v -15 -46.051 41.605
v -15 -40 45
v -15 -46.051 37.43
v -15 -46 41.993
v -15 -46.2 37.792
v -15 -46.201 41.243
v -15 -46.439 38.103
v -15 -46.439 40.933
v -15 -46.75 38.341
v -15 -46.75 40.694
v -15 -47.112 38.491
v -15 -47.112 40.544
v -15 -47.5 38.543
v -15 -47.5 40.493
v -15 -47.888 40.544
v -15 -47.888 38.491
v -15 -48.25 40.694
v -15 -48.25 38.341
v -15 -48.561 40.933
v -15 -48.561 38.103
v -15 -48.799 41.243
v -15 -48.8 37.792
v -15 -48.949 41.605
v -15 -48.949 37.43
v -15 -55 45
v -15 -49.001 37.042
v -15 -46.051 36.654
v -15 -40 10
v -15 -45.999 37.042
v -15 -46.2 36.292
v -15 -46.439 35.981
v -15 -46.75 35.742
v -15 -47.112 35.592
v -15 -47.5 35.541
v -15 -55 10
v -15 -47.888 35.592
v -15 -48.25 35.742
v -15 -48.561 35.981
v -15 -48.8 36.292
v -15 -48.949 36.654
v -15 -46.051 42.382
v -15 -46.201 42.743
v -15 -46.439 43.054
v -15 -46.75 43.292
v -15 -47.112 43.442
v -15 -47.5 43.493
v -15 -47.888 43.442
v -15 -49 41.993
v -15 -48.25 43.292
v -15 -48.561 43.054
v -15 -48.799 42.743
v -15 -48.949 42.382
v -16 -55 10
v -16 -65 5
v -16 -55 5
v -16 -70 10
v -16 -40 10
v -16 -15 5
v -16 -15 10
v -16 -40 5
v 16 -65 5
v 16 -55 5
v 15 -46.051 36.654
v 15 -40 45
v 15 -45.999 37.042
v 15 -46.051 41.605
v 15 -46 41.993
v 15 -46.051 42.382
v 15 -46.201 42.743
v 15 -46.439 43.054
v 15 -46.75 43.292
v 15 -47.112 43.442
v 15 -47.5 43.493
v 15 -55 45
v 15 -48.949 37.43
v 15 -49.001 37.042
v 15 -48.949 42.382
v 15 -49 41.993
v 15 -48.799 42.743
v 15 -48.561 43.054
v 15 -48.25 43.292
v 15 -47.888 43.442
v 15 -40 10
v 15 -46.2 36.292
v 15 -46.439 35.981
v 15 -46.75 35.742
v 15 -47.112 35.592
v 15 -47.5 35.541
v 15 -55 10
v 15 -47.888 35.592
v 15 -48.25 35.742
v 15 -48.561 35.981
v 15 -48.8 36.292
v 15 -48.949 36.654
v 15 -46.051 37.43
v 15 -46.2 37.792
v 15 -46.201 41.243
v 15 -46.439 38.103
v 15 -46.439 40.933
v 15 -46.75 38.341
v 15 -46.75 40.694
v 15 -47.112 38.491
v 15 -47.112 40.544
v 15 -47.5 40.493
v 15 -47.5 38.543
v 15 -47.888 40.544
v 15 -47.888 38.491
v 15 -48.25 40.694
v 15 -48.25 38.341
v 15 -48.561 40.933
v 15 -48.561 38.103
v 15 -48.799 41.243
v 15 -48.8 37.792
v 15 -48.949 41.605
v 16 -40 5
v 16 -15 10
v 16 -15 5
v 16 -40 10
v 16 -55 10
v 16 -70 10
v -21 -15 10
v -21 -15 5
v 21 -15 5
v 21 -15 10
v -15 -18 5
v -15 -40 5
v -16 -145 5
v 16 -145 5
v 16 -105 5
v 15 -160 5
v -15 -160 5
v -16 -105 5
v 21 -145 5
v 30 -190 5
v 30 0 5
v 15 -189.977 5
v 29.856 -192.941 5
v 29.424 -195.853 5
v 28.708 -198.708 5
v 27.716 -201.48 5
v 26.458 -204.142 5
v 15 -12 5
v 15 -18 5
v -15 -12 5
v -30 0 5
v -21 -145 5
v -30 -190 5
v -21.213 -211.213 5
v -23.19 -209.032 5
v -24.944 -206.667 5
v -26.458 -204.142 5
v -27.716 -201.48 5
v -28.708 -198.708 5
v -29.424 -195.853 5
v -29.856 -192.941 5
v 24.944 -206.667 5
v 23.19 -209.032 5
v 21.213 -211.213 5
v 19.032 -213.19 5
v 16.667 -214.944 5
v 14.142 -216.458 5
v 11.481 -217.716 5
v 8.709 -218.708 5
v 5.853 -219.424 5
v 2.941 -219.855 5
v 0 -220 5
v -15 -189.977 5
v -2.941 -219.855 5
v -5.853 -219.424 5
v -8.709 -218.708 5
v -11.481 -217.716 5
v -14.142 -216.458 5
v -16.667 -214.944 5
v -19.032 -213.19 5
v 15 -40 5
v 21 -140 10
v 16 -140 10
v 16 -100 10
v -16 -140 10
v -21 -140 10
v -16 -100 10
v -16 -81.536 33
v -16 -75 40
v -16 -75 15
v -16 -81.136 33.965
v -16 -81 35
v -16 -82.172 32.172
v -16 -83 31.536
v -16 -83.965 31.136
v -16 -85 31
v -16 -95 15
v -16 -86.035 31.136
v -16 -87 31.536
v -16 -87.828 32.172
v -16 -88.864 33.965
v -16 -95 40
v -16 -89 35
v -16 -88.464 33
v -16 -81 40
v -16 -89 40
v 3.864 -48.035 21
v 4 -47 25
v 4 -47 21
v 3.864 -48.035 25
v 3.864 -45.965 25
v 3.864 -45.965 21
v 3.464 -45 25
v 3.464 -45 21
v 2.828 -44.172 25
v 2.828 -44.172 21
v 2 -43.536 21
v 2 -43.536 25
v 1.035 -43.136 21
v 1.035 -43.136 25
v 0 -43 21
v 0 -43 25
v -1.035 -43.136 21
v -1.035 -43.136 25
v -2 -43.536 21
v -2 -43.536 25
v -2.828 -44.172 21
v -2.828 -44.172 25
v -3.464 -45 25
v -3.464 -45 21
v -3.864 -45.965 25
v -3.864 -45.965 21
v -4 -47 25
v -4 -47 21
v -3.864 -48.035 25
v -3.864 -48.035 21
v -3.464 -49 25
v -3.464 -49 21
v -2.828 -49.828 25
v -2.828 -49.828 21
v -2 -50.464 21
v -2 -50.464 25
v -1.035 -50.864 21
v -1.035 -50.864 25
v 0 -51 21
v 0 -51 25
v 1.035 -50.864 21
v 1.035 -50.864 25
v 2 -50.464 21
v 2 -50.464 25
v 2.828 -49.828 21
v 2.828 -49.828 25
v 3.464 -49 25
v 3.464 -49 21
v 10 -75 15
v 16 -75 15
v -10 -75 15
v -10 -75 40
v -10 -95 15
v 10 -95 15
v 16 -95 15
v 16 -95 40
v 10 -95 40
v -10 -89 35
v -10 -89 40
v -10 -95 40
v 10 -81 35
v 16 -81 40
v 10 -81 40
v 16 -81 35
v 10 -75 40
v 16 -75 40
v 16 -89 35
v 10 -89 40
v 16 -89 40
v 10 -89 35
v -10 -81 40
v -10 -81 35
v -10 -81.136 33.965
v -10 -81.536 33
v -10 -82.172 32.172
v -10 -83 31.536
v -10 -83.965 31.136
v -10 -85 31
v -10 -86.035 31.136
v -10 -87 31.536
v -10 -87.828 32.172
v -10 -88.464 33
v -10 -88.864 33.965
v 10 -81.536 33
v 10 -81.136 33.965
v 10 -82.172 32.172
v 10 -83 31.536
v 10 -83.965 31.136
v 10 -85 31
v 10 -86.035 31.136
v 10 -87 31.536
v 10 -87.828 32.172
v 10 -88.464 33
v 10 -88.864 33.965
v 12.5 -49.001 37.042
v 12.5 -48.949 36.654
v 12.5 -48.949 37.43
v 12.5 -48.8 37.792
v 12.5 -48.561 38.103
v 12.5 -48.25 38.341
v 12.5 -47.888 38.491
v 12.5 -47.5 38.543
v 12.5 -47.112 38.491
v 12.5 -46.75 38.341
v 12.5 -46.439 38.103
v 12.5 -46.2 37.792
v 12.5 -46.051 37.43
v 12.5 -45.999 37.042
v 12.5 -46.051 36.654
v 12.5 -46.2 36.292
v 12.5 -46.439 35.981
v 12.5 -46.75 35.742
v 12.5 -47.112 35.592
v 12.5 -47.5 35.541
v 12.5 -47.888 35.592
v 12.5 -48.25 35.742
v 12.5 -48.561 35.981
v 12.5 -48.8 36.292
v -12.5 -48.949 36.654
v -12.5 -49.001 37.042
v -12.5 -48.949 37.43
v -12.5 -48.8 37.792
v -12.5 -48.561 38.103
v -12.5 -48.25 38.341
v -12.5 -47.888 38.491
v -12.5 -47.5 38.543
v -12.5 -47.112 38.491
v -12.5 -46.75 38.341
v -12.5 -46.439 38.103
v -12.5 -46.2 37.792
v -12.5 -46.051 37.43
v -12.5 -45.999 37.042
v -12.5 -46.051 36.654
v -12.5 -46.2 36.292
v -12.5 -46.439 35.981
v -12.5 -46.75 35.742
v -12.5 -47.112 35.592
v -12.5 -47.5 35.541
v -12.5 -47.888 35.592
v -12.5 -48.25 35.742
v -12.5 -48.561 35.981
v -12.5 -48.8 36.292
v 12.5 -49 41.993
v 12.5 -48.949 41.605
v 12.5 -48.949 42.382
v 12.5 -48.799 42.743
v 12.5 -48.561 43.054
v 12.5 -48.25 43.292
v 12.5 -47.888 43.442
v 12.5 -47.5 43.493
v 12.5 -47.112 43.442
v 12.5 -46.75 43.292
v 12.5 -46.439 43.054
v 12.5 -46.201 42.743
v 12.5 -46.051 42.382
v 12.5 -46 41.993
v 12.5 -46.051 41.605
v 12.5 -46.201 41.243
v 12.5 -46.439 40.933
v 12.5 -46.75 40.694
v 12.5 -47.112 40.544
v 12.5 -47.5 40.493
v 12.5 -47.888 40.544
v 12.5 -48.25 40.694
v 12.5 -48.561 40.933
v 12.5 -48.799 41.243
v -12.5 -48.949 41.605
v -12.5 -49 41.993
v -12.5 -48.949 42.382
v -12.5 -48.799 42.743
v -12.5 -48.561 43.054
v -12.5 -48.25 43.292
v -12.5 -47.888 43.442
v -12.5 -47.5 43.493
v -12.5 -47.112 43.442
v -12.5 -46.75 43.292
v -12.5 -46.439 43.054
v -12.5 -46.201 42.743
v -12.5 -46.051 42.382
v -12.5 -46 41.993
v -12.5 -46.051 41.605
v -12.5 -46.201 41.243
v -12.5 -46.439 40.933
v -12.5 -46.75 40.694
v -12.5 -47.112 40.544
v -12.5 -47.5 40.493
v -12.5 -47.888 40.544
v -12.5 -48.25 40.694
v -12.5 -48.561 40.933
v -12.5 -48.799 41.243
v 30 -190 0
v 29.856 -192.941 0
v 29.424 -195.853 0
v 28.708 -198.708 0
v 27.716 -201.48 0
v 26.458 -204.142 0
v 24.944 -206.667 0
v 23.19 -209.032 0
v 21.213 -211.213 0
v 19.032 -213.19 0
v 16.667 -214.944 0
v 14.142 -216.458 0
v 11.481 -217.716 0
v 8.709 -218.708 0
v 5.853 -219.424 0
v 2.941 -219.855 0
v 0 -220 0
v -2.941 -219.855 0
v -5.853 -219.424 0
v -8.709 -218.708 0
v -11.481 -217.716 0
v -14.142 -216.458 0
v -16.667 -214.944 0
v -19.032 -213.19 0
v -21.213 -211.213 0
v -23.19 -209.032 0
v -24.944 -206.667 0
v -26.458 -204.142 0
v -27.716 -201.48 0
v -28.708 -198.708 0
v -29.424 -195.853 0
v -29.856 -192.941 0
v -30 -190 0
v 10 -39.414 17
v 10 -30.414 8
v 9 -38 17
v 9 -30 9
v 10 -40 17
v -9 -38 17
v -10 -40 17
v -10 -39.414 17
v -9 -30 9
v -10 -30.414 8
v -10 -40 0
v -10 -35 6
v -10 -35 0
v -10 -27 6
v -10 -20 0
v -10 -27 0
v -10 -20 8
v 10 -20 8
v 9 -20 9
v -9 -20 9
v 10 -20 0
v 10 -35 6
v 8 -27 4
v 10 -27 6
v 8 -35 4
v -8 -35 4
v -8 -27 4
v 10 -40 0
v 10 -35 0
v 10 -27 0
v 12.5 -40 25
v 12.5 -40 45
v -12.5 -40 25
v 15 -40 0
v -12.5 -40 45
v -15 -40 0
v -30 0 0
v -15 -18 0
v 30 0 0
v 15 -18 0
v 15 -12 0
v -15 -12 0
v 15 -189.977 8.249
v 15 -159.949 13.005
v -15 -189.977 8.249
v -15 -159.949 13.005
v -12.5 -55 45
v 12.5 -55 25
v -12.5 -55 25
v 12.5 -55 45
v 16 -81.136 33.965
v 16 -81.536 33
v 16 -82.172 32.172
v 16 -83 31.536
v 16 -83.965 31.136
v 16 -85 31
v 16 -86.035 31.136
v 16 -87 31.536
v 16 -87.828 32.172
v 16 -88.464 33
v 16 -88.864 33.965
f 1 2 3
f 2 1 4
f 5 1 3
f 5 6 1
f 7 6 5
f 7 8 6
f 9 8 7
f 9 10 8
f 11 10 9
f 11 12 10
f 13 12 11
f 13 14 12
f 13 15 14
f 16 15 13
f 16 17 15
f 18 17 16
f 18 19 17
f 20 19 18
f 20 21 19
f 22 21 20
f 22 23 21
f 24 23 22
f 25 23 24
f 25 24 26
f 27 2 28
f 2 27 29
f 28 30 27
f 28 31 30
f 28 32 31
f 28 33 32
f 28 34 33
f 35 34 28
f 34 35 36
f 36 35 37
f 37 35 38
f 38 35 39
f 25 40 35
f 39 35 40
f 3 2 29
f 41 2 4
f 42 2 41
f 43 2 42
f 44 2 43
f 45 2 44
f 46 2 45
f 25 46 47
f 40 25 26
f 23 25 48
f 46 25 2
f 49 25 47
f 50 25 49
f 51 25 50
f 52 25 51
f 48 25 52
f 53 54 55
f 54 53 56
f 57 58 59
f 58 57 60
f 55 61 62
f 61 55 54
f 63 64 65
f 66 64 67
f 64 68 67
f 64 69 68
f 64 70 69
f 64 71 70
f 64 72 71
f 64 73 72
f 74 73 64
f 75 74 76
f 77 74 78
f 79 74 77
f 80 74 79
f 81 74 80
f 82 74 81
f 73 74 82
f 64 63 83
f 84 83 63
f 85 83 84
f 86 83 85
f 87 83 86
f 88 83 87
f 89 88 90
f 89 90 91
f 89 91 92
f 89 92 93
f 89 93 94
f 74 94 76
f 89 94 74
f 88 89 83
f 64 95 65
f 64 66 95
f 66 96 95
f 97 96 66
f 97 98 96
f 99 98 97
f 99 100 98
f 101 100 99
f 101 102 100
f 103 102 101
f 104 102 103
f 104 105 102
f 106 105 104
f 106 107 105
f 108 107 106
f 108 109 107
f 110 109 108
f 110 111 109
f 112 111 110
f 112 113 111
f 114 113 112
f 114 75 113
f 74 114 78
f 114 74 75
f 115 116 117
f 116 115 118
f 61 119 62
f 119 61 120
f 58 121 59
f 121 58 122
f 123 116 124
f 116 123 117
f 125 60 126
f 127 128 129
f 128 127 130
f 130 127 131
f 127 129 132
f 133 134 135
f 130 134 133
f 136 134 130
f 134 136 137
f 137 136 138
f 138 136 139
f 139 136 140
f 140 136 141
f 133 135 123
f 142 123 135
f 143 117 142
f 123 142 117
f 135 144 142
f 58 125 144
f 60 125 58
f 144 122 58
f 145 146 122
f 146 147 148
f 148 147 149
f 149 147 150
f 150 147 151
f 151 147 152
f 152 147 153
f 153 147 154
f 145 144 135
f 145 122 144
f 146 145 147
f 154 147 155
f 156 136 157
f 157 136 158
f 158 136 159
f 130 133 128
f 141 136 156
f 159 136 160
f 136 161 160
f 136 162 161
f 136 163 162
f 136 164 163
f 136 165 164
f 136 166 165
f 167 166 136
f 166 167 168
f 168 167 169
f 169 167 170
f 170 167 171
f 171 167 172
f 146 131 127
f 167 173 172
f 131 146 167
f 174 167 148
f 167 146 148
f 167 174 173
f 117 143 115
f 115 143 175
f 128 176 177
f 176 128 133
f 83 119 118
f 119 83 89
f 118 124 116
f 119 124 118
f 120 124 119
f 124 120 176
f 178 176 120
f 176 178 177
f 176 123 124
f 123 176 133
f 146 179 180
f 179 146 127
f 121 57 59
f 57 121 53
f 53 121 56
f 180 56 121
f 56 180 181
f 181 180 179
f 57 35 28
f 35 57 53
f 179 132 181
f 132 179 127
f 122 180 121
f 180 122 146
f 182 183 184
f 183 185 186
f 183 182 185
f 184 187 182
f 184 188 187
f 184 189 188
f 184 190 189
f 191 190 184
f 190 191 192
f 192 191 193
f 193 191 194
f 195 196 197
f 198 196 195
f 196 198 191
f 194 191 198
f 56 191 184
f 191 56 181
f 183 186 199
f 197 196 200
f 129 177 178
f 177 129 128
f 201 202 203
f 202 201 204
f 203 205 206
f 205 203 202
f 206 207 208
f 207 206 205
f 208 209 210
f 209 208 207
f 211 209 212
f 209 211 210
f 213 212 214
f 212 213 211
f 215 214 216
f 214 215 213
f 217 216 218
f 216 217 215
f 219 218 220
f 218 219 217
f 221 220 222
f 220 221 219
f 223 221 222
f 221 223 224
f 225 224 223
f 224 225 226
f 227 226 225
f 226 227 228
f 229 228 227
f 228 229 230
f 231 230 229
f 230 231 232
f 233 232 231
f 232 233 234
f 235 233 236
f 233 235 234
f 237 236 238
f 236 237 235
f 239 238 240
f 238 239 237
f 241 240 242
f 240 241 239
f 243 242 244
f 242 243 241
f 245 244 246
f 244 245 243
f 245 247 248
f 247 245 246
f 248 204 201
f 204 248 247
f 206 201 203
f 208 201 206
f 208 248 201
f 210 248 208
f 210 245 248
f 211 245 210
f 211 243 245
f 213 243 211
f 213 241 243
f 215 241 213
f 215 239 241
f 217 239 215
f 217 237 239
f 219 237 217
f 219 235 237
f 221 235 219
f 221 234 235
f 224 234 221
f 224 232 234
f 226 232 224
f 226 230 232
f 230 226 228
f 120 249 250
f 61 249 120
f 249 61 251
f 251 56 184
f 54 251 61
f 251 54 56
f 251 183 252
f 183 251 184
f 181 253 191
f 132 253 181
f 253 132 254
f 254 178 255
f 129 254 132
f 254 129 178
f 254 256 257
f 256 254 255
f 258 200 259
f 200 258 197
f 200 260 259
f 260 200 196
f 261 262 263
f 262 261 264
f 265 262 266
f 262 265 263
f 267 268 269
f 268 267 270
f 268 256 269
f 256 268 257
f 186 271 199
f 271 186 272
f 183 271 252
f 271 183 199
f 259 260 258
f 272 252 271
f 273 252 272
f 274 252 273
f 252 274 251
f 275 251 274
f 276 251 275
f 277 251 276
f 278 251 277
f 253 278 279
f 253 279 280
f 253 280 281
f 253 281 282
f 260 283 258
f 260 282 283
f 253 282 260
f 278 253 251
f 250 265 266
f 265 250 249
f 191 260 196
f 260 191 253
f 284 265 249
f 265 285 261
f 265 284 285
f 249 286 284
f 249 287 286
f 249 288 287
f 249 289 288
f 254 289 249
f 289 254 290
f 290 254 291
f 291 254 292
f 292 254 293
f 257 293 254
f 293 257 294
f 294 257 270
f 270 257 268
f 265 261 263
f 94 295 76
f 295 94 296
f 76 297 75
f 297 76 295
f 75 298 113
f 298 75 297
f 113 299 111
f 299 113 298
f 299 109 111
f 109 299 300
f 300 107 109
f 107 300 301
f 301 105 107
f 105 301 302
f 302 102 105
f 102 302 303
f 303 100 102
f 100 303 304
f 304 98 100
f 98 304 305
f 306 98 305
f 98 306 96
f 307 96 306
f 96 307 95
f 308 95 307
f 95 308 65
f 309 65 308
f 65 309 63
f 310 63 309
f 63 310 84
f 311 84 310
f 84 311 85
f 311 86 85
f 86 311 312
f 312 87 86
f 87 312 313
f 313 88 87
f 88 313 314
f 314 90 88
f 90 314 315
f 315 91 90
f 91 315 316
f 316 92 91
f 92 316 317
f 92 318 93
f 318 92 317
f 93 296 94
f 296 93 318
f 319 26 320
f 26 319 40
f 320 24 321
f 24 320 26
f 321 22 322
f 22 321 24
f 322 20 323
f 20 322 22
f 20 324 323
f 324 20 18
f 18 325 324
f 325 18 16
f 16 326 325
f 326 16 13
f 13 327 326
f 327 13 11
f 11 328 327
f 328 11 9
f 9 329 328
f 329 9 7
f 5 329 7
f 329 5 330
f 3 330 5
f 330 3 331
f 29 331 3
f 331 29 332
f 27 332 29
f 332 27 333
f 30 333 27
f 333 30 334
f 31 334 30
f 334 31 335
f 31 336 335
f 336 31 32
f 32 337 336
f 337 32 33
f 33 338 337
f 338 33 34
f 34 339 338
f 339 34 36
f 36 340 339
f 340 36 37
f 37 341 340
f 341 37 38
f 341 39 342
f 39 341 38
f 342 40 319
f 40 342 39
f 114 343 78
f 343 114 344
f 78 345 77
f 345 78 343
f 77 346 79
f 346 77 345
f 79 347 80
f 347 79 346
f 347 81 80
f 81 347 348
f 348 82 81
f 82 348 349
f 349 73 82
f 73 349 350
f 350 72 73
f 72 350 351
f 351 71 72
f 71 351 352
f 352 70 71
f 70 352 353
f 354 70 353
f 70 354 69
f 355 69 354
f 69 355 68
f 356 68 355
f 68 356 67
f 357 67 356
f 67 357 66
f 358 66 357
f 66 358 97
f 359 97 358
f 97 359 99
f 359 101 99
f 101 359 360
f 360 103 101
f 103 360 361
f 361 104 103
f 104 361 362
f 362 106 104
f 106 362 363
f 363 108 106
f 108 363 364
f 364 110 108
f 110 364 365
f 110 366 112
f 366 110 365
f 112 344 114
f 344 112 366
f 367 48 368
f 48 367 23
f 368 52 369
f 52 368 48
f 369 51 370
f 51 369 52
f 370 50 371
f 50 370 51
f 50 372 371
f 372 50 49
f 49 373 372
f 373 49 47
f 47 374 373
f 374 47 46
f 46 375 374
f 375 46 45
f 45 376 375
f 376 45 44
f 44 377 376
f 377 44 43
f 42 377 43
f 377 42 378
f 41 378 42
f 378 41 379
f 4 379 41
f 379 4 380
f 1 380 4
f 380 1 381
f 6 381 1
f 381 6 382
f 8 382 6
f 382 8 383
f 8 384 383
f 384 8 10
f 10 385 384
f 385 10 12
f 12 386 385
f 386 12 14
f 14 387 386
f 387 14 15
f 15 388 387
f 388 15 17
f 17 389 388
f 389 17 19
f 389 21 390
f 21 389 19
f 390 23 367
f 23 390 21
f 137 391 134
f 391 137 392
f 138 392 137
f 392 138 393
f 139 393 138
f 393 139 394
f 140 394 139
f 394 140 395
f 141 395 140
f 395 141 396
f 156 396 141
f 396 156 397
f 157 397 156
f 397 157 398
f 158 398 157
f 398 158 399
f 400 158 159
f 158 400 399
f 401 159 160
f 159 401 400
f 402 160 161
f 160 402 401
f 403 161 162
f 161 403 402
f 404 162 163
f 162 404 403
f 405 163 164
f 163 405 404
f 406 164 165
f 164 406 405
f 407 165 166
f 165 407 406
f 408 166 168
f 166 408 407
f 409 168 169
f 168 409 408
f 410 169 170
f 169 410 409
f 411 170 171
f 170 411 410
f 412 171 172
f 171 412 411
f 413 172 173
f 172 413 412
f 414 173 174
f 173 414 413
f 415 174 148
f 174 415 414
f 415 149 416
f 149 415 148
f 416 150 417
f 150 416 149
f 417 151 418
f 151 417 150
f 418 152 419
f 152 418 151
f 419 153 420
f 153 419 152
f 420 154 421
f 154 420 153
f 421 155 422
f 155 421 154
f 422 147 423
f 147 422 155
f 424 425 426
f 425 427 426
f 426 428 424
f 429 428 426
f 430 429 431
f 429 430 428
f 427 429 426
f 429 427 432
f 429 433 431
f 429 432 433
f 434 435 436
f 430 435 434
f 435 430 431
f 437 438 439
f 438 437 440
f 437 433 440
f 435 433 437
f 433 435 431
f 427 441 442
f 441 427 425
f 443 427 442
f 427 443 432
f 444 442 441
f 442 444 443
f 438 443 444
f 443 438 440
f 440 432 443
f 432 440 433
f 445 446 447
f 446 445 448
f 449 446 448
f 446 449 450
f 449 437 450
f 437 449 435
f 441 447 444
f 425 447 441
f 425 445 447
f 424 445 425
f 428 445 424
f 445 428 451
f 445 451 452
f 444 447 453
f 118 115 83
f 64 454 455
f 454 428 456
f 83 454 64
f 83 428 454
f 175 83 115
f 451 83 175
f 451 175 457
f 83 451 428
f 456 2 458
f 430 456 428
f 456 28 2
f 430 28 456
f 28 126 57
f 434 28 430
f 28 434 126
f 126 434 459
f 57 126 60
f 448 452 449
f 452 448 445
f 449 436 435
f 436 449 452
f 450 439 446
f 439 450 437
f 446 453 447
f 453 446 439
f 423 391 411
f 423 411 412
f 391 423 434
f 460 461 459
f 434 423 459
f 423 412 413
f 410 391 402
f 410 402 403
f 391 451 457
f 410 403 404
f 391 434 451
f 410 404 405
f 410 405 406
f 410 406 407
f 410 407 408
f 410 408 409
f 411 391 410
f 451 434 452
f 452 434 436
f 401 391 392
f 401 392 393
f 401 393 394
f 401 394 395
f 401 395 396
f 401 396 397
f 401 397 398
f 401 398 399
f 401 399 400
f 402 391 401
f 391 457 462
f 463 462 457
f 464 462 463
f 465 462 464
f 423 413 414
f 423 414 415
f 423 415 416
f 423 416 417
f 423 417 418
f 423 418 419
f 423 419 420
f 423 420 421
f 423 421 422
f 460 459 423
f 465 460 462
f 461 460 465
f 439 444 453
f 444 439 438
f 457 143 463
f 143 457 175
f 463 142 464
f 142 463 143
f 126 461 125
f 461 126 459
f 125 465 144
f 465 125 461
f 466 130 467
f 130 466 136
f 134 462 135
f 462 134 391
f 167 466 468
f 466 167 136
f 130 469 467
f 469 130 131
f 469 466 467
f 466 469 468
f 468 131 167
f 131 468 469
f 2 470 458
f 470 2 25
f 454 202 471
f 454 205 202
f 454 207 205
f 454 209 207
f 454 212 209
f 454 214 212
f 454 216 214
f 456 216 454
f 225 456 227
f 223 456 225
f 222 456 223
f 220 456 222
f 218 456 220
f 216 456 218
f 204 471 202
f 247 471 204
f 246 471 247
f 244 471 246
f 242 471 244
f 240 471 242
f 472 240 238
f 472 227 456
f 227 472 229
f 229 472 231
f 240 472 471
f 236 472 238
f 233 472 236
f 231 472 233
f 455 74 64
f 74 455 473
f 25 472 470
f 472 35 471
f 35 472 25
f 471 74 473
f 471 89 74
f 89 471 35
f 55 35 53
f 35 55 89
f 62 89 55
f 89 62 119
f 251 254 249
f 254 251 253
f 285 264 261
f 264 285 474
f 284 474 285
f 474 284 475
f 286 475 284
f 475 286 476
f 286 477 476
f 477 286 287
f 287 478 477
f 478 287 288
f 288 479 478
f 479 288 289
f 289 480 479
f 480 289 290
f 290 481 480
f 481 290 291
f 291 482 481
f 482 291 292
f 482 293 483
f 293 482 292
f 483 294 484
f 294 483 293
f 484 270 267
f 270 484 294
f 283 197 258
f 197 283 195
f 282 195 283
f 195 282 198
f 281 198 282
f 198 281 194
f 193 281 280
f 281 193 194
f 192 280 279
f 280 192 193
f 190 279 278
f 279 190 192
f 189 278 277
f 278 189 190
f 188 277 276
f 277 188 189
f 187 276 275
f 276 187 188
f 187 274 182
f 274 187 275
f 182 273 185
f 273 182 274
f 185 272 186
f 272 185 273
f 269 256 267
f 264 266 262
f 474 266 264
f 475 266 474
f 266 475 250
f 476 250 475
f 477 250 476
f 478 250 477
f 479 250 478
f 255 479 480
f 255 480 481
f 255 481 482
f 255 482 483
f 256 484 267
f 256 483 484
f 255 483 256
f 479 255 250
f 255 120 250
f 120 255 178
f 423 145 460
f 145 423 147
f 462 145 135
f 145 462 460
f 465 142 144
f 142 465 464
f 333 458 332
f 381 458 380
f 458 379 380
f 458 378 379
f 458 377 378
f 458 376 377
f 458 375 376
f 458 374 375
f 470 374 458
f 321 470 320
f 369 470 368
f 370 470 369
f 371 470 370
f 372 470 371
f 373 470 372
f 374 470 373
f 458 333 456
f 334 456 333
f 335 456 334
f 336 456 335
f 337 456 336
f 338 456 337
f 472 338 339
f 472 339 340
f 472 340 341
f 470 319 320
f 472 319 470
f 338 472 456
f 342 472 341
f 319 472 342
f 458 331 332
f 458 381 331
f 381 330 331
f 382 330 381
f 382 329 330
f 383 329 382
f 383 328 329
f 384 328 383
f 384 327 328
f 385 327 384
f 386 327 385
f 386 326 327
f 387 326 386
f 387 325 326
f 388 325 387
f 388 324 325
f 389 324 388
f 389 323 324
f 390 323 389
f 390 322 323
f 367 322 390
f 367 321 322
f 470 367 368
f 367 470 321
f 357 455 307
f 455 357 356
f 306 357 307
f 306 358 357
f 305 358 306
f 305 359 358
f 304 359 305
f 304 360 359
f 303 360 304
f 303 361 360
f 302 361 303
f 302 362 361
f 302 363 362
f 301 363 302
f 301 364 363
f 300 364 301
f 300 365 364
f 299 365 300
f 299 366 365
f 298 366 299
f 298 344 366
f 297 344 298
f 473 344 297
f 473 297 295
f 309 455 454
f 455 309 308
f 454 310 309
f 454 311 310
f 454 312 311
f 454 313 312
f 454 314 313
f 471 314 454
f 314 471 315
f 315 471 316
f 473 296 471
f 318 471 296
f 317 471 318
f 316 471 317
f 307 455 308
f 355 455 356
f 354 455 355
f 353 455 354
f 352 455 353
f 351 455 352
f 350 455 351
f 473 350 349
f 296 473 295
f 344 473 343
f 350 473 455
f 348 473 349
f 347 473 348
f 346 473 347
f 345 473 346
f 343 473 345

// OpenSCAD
stlObject1_points=[
   [-15,10,40],
   [-15,35.54136,47.5],
   [-15,10,55],
   [-15,35.59249,47.11162],
   [-15,35.7424,46.74971],
   [-15,36.65356,48.94946],
   [-15,45,55],
   [-15,36.29165,48.79955],
   [-15,35.98087,48.56108],
   [-15,43.49341,47.5],
   [-15,45,40],
   [-15,43.4423,47.88823],
   [-15,43.29245,48.25001],
   [-15,36.65356,46.05054],
   [-15,37.04195,45.99941],
   [-15,41.99339,45.99998],
   [-15,37.43032,46.05054],
   [-15,41.60516,46.0511],
   [-15,37.79224,46.20045],
   [-15,41.24339,46.20095],
   [-15,38.10302,46.43893],
   [-15,40.93272,46.43933],
   [-15,38.34149,46.74971],
   [-15,40.69434,46.74999],
   [-15,40.54449,47.11177],
   [-15,38.4914,47.11162],
   [-15,40.49338,47.5],
   [-15,38.54253,47.5],
   [-15,38.4914,47.88838],
   [-15,41.99339,49.00002],
   [-15,37.43032,48.94946],
   [-15,41.60516,48.9489],
   [-15,37.04195,49.00059],
   [-15,37.79224,48.79955],
   [-15,41.24339,48.79905],
   [-15,38.10302,48.56108],
   [-15,40.93272,48.56067],
   [-15,38.34149,48.25029],
   [-15,40.69434,48.25001],
   [-15,40.54449,47.88823],
   [-15,42.38163,46.0511],
   [-15,42.7434,46.20095],
   [-15,43.05407,46.43933],
   [-15,43.29245,46.74999],
   [-15,43.4423,47.11177],
   [-15,43.05407,48.56067],
   [-15,42.7434,48.79905],
   [-15,42.38163,48.9489],
   [-15,35.7424,48.25029],
   [-15,35.59249,47.88838],
   [-15,35.98087,46.43893],
   [-15,36.29165,46.20045],
   [-16,5,65],
   [-16,10,55],
   [-16,5,55],
   [-16,10,70],
   [-16,10,15],
   [-16,5,40],
   [-16,10,40],
   [-16,5,15],
   [16,5,65],
   [16,5,55],
   [15,10,55],
   [15,35.54136,47.5],
   [15,10,40],
   [15,35.59249,47.88838],
   [15,35.7424,48.25029],
   [15,36.65356,46.05054],
   [15,45,40],
   [15,36.29165,46.20045],
   [15,35.98087,46.43893],
   [15,43.49341,47.5],
   [15,45,55],
   [15,43.4423,47.11177],
   [15,43.29245,46.74999],
   [15,36.65356,48.94946],
   [15,37.04195,49.00059],
   [15,41.99339,49.00002],
   [15,37.43032,48.94946],
   [15,41.60516,48.9489],
   [15,37.79224,48.79955],
   [15,41.24339,48.79905],
   [15,38.10302,48.56108],
   [15,40.93272,48.56067],
   [15,38.34149,48.25029],
   [15,40.69434,48.25001],
   [15,40.54449,47.88823],
   [15,38.4914,47.88838],
   [15,40.49338,47.5],
   [15,38.54253,47.5],
   [15,38.4914,47.11162],
   [15,42.38163,48.9489],
   [15,42.7434,48.79905],
   [15,43.05407,48.56067],
   [15,43.29245,48.25001],
   [15,43.4423,47.88823],
   [15,43.05407,46.43933],
   [15,42.7434,46.20095],
   [15,42.38163,46.0511],
   [15,41.99339,45.99998],
   [15,37.04195,45.99941],
   [15,37.43032,46.05054],
   [15,41.60516,46.0511],
   [15,37.79224,46.20045],
   [15,41.24339,46.20095],
   [15,38.10302,46.43893],
   [15,40.93272,46.43933],
   [15,38.34149,46.74971],
   [15,40.69434,46.74999],
   [15,40.54449,47.11177],
   [15,35.7424,46.74971],
   [15,35.59249,47.11162],
   [15,35.98087,48.56108],
   [15,36.29165,48.79955],
   [16,5,40],
   [16,10,15],
   [16,10,40],
   [16,5,15],
   [16,10,55],
   [16,10,70],
   [-21,10,15],
   [-21,5,15],
   [21,10,15],
   [21,5,15],
   [-15,5,15],
   [-15,5,40],
   [-30,5,0],
   [-21,5,145],
   [-30,5,190],
   [-15,5,160],
   [-26.45764,5,204.1419],
   [-15,5,189.9772],
   [-24.94409,5,206.6671],
   [-23.19031,5,209.0318],
   [30,5,0],
   [15,5,15],
   [15,5,40],
   [21,5,145],
   [30,5,160],
   [15,5,160],
   [16,5,145],
   [-16,5,145],
   [-16,5,105],
   [16,5,105],
   [-29.42356,5,195.8527],
   [-29.85554,5,192.9405],
   [-28.70821,5,198.7085],
   [-27.71639,5,201.4805],
   [-21.2132,5,211.2132],
   [-19.0318,5,213.1903],
   [-16.66711,5,214.9441],
   [-14.1419,5,216.4576],
   [-11.4805,5,217.7164],
   [-8.70854,5,218.7082],
   [-5.852709,5,219.4236],
   [-2.940514,5,219.8555],
   [0,5,220],
   [15,5,189.9772],
   [2.940514,5,219.8555],
   [5.852711,5,219.4236],
   [8.708542,5,218.7082],
   [11.4805,5,217.7164],
   [14.1419,5,216.4576],
   [16.66711,5,214.9441],
   [19.0318,5,213.1903],
   [21.2132,5,211.2132],
   [23.19032,5,209.0318],
   [24.94409,5,206.6671],
   [26.45764,5,204.1419],
   [30,5,189.9772],
   [27.71638,5,201.4805],
   [28.70821,5,198.7085],
   [29.42356,5,195.8527],
   [29.85554,5,192.9405],
   [30,5,190],
   [16,10,140],
   [21,10,140],
   [16,10,100],
   [-21,10,140],
   [-16,10,140],
   [-16,10,100],
   [-16,15,75],
   [-16,15,95],
   [-16,31,85],
   [-16,31.1363,86.03528],
   [-16,31.5359,87],
   [-16,32.17157,87.82843],
   [-16,33,88.4641],
   [-16,40,95],
   [-16,33.96473,88.8637],
   [-16,35,89],
   [-16,40,89],
   [-16,31.1363,83.96472],
   [-16,31.5359,83],
   [-16,32.17157,82.17158],
   [-16,33,81.5359],
   [-16,40,75],
   [-16,33.96473,81.1363],
   [-16,35,81],
   [-16,40,81],
   [4,21,47],
   [3.863705,25,48.03528],
   [3.863705,21,48.03528],
   [4,25,47],
   [3.863705,21,45.96473],
   [3.863705,25,45.96473],
   [3.464104,21,45],
   [3.464104,25,45],
   [2.828426,21,44.17157],
   [2.828426,25,44.17157],
   [2,21,43.5359],
   [2,25,43.5359],
   [1.035276,21,43.1363],
   [1.035276,25,43.1363],
   [0,21,43],
   [0,25,43],
   [-1.035276,21,43.1363],
   [-1.035276,25,43.1363],
   [-2,21,43.5359],
   [-2,25,43.5359],
   [-2.828426,21,44.17157],
   [-2.828426,25,44.17157],
   [-3.464102,21,45],
   [-3.464102,25,45],
   [-3.863703,21,45.96473],
   [-3.863703,25,45.96473],
   [-4,21,47],
   [-4,25,47],
   [-3.863703,21,48.03528],
   [-3.863703,25,48.03528],
   [-3.464102,21,49],
   [-3.464102,25,49],
   [-2.828426,21,49.82843],
   [-2.828426,25,49.82843],
   [-2,21,50.4641],
   [-2,25,50.4641],
   [-1.035276,21,50.8637],
   [-1.035276,25,50.8637],
   [0,21,51],
   [0,25,51],
   [1.035276,21,50.8637],
   [1.035276,25,50.8637],
   [2,21,50.4641],
   [2,25,50.4641],
   [2.828426,21,49.82843],
   [2.828426,25,49.82843],
   [3.464104,21,49],
   [3.464104,25,49],
   [10,15,75],
   [16,15,75],
   [-10,15,75],
   [-10,40,75],
   [10,15,95],
   [16,15,95],
   [-10,15,95],
   [10,40,95],
   [16,40,95],
   [-10,40,89],
   [-10,35,89],
   [-10,40,95],
   [10,40,81],
   [16,35,81],
   [10,35,81],
   [16,40,81],
   [16,40,75],
   [10,40,75],
   [16,40,89],
   [10,35,89],
   [16,35,89],
   [10,40,89],
   [-10,35,81],
   [-10,40,81],
   [-10,33.96473,88.8637],
   [-10,31,85],
   [-10,31.1363,86.03528],
   [-10,31.5359,87],
   [-10,33.96473,81.1363],
   [-10,33,81.5359],
   [-10,32.17157,82.17158],
   [-10,31.5359,83],
   [-10,31.1363,83.96472],
   [-10,32.17157,87.82843],
   [-10,33,88.4641],
   [10,33.96473,81.1363],
   [10,31,85],
   [10,31.1363,83.96472],
   [10,31.5359,83],
   [10,33.96473,88.8637],
   [10,33,88.4641],
   [10,32.17157,87.82843],
   [10,31.5359,87],
   [10,31.1363,86.03528],
   [10,32.17157,82.17158],
   [10,33,81.5359],
   [10,36.65356,48.94946],
   [10,37.04195,49.00059],
   [10,37.43032,48.94946],
   [10,37.79224,48.79955],
   [10,38.10302,48.56108],
   [10,38.34149,48.25029],
   [10,38.4914,47.88838],
   [10,38.54253,47.5],
   [10,38.4914,47.11162],
   [10,38.34149,46.74971],
   [10,38.10302,46.43893],
   [10,37.79224,46.20045],
   [10,37.43032,46.05054],
   [10,37.04195,45.99941],
   [10,36.65356,46.05054],
   [10,36.29165,46.20045],
   [10,35.98087,46.43893],
   [10,35.7424,46.74971],
   [10,35.59249,47.11162],
   [10,35.54136,47.5],
   [10,35.59249,47.88838],
   [10,35.7424,48.25029],
   [10,35.98087,48.56108],
   [10,36.29165,48.79955],
   [-10,37.04195,49.00059],
   [-10,36.65356,48.94946],
   [-10,37.43032,48.94946],
   [-10,37.79224,48.79955],
   [-10,38.10302,48.56108],
   [-10,38.34149,48.25029],
   [-10,38.4914,47.88838],
   [-10,38.54253,47.5],
   [-10,38.4914,47.11162],
   [-10,38.34149,46.74971],
   [-10,38.10302,46.43893],
   [-10,37.79224,46.20045],
   [-10,37.43032,46.05054],
   [-10,37.04195,45.99941],
   [-10,36.65356,46.05054],
   [-10,36.29165,46.20045],
   [-10,35.98087,46.43893],
   [-10,35.7424,46.74971],
   [-10,35.59249,47.11162],
   [-10,35.54136,47.5],
   [-10,35.59249,47.88838],
   [-10,35.7424,48.25029],
   [-10,35.98087,48.56108],
   [-10,36.29165,48.79955],
   [10,41.60516,48.9489],
   [10,41.99339,49.00002],
   [10,42.38163,48.9489],
   [10,42.7434,48.79905],
   [10,43.05407,48.56067],
   [10,43.29245,48.25001],
   [10,43.4423,47.88823],
   [10,43.49341,47.5],
   [10,43.4423,47.11177],
   [10,43.29245,46.74999],
   [10,43.05407,46.43933],
   [10,42.7434,46.20095],
   [10,42.38163,46.0511],
   [10,41.99339,45.99998],
   [10,41.60516,46.0511],
   [10,41.24339,46.20095],
   [10,40.93272,46.43933],
   [10,40.69434,46.74999],
   [10,40.54449,47.11177],
   [10,40.49338,47.5],
   [10,40.54449,47.88823],
   [10,40.69434,48.25001],
   [10,40.93272,48.56067],
   [10,41.24339,48.79905],
   [-10,41.99339,49.00002],
   [-10,41.60516,48.9489],
   [-10,42.38163,48.9489],
   [-10,42.7434,48.79905],
   [-10,43.05407,48.56067],
   [-10,43.29245,48.25001],
   [-10,43.4423,47.88823],
   [-10,43.49341,47.5],
   [-10,43.4423,47.11177],
   [-10,43.29245,46.74999],
   [-10,43.05407,46.43933],
   [-10,42.7434,46.20095],
   [-10,42.38163,46.0511],
   [-10,41.99339,45.99998],
   [-10,41.60516,46.0511],
   [-10,41.24339,46.20095],
   [-10,40.93272,46.43933],
   [-10,40.69434,46.74999],
   [-10,40.54449,47.11177],
   [-10,40.49338,47.5],
   [-10,40.54449,47.88823],
   [-10,40.69434,48.25001],
   [-10,40.93272,48.56067],
   [-10,41.24339,48.79905],
   [29.85554,0,192.9405],
   [30,0,190],
   [29.42356,0,195.8527],
   [28.70821,0,198.7085],
   [27.71638,0,201.4805],
   [26.45764,0,204.1419],
   [24.94409,0,206.6671],
   [23.19032,0,209.0318],
   [21.2132,0,211.2132],
   [19.0318,0,213.1903],
   [16.66711,0,214.9441],
   [14.1419,0,216.4576],
   [11.4805,0,217.7164],
   [8.708542,0,218.7082],
   [5.852711,0,219.4236],
   [2.940514,0,219.8555],
   [0,0,220],
   [-2.940514,0,219.8555],
   [-5.852709,0,219.4236],
   [-8.70854,0,218.7082],
   [-11.4805,0,217.7164],
   [-14.1419,0,216.4576],
   [-16.66711,0,214.9441],
   [-19.0318,0,213.1903],
   [-21.2132,0,211.2132],
   [-23.19031,0,209.0318],
   [-24.94409,0,206.6671],
   [-26.45764,0,204.1419],
   [-27.71639,0,201.4805],
   [-28.70821,0,198.7085],
   [-29.42356,0,195.8527],
   [-29.85554,0,192.9405],
   [-30,0,190],
   [9,17,38],
   [10,8,30.41421],
   [10,17,39.41422],
   [9,9,30],
   [-9,17,38],
   [-10,17,39.41422],
   [-10,17,40],
   [10,17,40],
   [-9,9,30],
   [-10,8,30.41421],
   [-10,6,35],
   [-10,6,27],
   [-10,8,20],
   [-10,0,20],
   [-10,0,27],
   [-10,0,40],
   [-10,0,35],
   [10,8,20],
   [9,9,20],
   [-9,9,20],
   [10,0,20],
   [10,6,35],
   [8,4,27],
   [8,4,35],
   [10,6,27],
   [-8,4,27],
   [-8,4,35],
   [10,0,27],
   [10,0,40],
   [10,0,35],
   [15,0,40],
   [-10,25,40],
   [10,25,40],
   [10,45,40],
   [-15,0,40],
   [-10,45,40],
   [-30,0,0],
   [-15,0,15],
   [30,0,0],
   [15,0,15],
   [15,8.248591,189.9772],
   [15,13.00466,159.9486],
   [-15,8.248591,189.9772],
   [-15,13.00466,159.9486],
   [-10,45,55],
   [-10,25,55],
   [10,25,55],
   [10,45,55],
   [16,33.96473,81.1363],
   [16,33,81.5359],
   [16,32.17157,82.17158],
   [16,31.5359,83],
   [16,31.1363,83.96472],
   [16,31,85],
   [16,31.1363,86.03528],
   [16,31.5359,87],
   [16,32.17157,87.82843],
   [16,33,88.4641],
   [16,33.96473,88.8637],
 ];
stlObject1_faces=[
  [0,1,2,],
  [3,1,0,],
  [4,3,0,],
  [2,5,6,],
  [7,5,2,],
  [8,7,2,],
  [6,9,10,],
  [11,9,6,],
  [12,11,6,],
  [10,13,0,],
  [14,13,10,],
  [15,14,10,],
  [16,14,15,],
  [17,16,15,],
  [18,16,17,],
  [19,18,17,],
  [20,18,19,],
  [21,20,19,],
  [22,20,21,],
  [23,22,21,],
  [24,22,23,],
  [25,22,24,],
  [26,25,24,],
  [27,25,26,],
  [28,27,26,],
  [29,30,31,],
  [32,30,29,],
  [6,32,29,],
  [5,32,6,],
  [33,31,30,],
  [34,31,33,],
  [35,34,33,],
  [36,34,35,],
  [37,36,35,],
  [38,36,37,],
  [39,38,37,],
  [28,39,37,],
  [26,39,28,],
  [10,40,15,],
  [41,40,10,],
  [42,41,10,],
  [10,43,42,],
  [44,43,10,],
  [9,44,10,],
  [6,45,12,],
  [46,45,6,],
  [47,46,6,],
  [6,29,47,],
  [2,48,8,],
  [49,48,2,],
  [1,49,2,],
  [0,50,4,],
  [51,50,0,],
  [13,51,0,],
  [52,53,54,],
  [55,53,52,],
  [56,57,58,],
  [59,57,56,],
  [60,54,61,],
  [52,54,60,],
  [62,63,64,],
  [65,63,62,],
  [66,65,62,],
  [64,67,68,],
  [69,67,64,],
  [70,69,64,],
  [68,71,72,],
  [73,71,68,],
  [74,73,68,],
  [72,75,62,],
  [76,75,72,],
  [77,76,72,],
  [78,76,77,],
  [79,78,77,],
  [80,78,79,],
  [81,80,79,],
  [82,80,81,],
  [83,82,81,],
  [84,82,83,],
  [85,84,83,],
  [86,84,85,],
  [87,84,86,],
  [88,87,86,],
  [89,87,88,],
  [90,89,88,],
  [72,91,77,],
  [92,91,72,],
  [93,92,72,],
  [72,94,93,],
  [95,94,72,],
  [71,95,72,],
  [68,96,74,],
  [97,96,68,],
  [98,97,68,],
  [68,99,98,],
  [100,99,68,],
  [67,100,68,],
  [101,99,100,],
  [102,99,101,],
  [103,102,101,],
  [104,102,103,],
  [105,104,103,],
  [106,104,105,],
  [107,106,105,],
  [108,106,107,],
  [109,108,107,],
  [90,109,107,],
  [88,109,90,],
  [64,110,70,],
  [111,110,64,],
  [63,111,64,],
  [62,112,66,],
  [113,112,62,],
  [75,113,62,],
  [114,115,116,],
  [117,115,114,],
  [118,60,61,],
  [119,60,118,],
  [59,120,121,],
  [56,120,59,],
  [122,117,123,],
  [115,117,122,],
  [57,124,125,],
  [59,124,57,],
  [126,124,59,],
  [121,126,59,],
  [127,126,121,],
  [128,126,127,],
  [129,128,127,],
  [130,128,129,],
  [131,130,129,],
  [132,130,131,],
  [133,132,131,],
  [134,124,126,],
  [135,124,134,],
  [117,135,134,],
  [136,135,117,],
  [114,136,117,],
  [134,123,117,],
  [137,123,134,],
  [138,137,134,],
  [139,137,138,],
  [140,137,139,],
  [129,140,139,],
  [141,140,129,],
  [127,141,129,],
  [140,142,143,],
  [141,142,140,],
  [128,144,145,],
  [146,144,128,],
  [147,146,128,],
  [128,130,147,],
  [131,148,133,],
  [149,148,131,],
  [150,149,131,],
  [131,151,150,],
  [152,151,131,],
  [153,152,131,],
  [131,154,153,],
  [155,154,131,],
  [156,155,131,],
  [157,156,131,],
  [158,156,157,],
  [159,158,157,],
  [157,160,159,],
  [161,160,157,],
  [162,161,157,],
  [157,163,162,],
  [164,163,157,],
  [165,164,157,],
  [157,166,165,],
  [167,166,157,],
  [168,167,157,],
  [169,168,157,],
  [170,168,169,],
  [171,170,169,],
  [169,172,171,],
  [173,172,169,],
  [174,173,169,],
  [137,175,176,],
  [140,175,137,],
  [177,176,175,],
  [119,176,177,],
  [122,176,119,],
  [118,122,119,],
  [116,122,118,],
  [62,116,118,],
  [64,116,62,],
  [116,115,122,],
  [176,123,137,],
  [122,123,176,],
  [141,178,179,],
  [127,178,141,],
  [178,180,179,],
  [55,180,178,],
  [120,55,178,],
  [53,55,120,],
  [58,53,120,],
  [0,53,58,],
  [2,53,0,],
  [120,56,58,],
  [179,142,141,],
  [180,142,179,],
  [121,178,127,],
  [120,178,121,],
  [181,180,55,],
  [182,180,181,],
  [183,182,181,],
  [184,182,183,],
  [185,182,184,],
  [186,182,185,],
  [187,182,186,],
  [188,182,187,],
  [189,188,187,],
  [190,188,189,],
  [191,188,190,],
  [181,192,183,],
  [193,192,181,],
  [194,193,181,],
  [181,195,194,],
  [196,195,181,],
  [197,195,196,],
  [198,197,196,],
  [196,199,198,],
  [143,175,140,],
  [177,175,143,],
  [200,201,202,],
  [203,201,200,],
  [204,203,200,],
  [205,203,204,],
  [206,205,204,],
  [207,205,206,],
  [208,207,206,],
  [209,207,208,],
  [210,209,208,],
  [211,209,210,],
  [212,211,210,],
  [213,211,212,],
  [214,213,212,],
  [215,213,214,],
  [216,215,214,],
  [217,215,216,],
  [218,217,216,],
  [219,217,218,],
  [220,219,218,],
  [221,219,220,],
  [222,221,220,],
  [223,221,222,],
  [224,223,222,],
  [225,223,224,],
  [226,225,224,],
  [227,225,226,],
  [228,227,226,],
  [229,227,228,],
  [230,229,228,],
  [231,229,230,],
  [232,231,230,],
  [233,231,232,],
  [234,233,232,],
  [235,233,234,],
  [236,235,234,],
  [237,235,236,],
  [238,237,236,],
  [239,237,238,],
  [240,239,238,],
  [241,239,240,],
  [242,241,240,],
  [243,241,242,],
  [244,243,242,],
  [245,243,244,],
  [246,245,244,],
  [247,245,246,],
  [202,247,246,],
  [201,247,202,],
  [200,224,204,],
  [226,224,200,],
  [202,226,200,],
  [228,226,202,],
  [246,228,202,],
  [230,228,246,],
  [244,230,246,],
  [232,230,244,],
  [242,232,244,],
  [234,232,242,],
  [240,234,242,],
  [236,234,240,],
  [238,236,240,],
  [222,204,224,],
  [206,204,222,],
  [220,206,222,],
  [208,206,220,],
  [218,208,220,],
  [210,208,218,],
  [216,210,218,],
  [212,210,216,],
  [214,212,216,],
  [248,119,249,],
  [55,119,248,],
  [250,55,248,],
  [181,55,250,],
  [55,60,119,],
  [52,60,55,],
  [251,181,250,],
  [196,181,251,],
  [180,143,142,],
  [177,143,180,],
  [252,177,180,],
  [253,177,252,],
  [180,254,252,],
  [182,254,180,],
  [255,253,252,],
  [256,253,255,],
  [257,190,258,],
  [191,190,257,],
  [257,188,191,],
  [259,188,257,],
  [260,261,262,],
  [263,261,260,],
  [260,264,263,],
  [265,264,260,],
  [266,267,268,],
  [269,267,266,],
  [266,255,269,],
  [256,255,266,],
  [199,270,198,],
  [271,270,199,],
  [199,251,271,],
  [196,251,199,],
  [259,272,254,],
  [258,272,259,],
  [257,258,259,],
  [254,273,250,],
  [274,273,254,],
  [275,274,254,],
  [250,276,251,],
  [277,276,250,],
  [278,277,250,],
  [251,270,271,],
  [276,270,251,],
  [250,279,278,],
  [280,279,250,],
  [273,280,250,],
  [254,281,275,],
  [282,281,254,],
  [272,282,254,],
  [264,248,249,],
  [265,248,264,],
  [188,254,182,],
  [259,254,188,],
  [265,283,248,],
  [262,283,265,],
  [260,262,265,],
  [248,284,252,],
  [285,284,248,],
  [286,285,248,],
  [252,287,255,],
  [288,287,252,],
  [289,288,252,],
  [255,267,269,],
  [287,267,255,],
  [252,290,289,],
  [291,290,252,],
  [284,291,252,],
  [248,292,286,],
  [293,292,248,],
  [283,293,248,],
  [76,294,75,],
  [295,294,76,],
  [78,295,76,],
  [296,295,78,],
  [80,296,78,],
  [297,296,80,],
  [82,297,80,],
  [298,297,82,],
  [84,298,82,],
  [299,298,84,],
  [87,299,84,],
  [300,299,87,],
  [89,300,87,],
  [301,300,89,],
  [90,301,89,],
  [302,301,90,],
  [107,302,90,],
  [303,302,107,],
  [105,303,107,],
  [304,303,105,],
  [103,304,105,],
  [305,304,103,],
  [101,305,103,],
  [306,305,101,],
  [100,306,101,],
  [307,306,100,],
  [67,307,100,],
  [308,307,67,],
  [69,308,67,],
  [309,308,69,],
  [70,309,69,],
  [310,309,70,],
  [110,310,70,],
  [311,310,110,],
  [111,311,110,],
  [312,311,111,],
  [63,312,111,],
  [313,312,63,],
  [65,313,63,],
  [314,313,65,],
  [66,314,65,],
  [315,314,66,],
  [112,315,66,],
  [316,315,112,],
  [113,316,112,],
  [317,316,113,],
  [75,317,113,],
  [294,317,75,],
  [318,5,319,],
  [32,5,318,],
  [320,32,318,],
  [30,32,320,],
  [321,30,320,],
  [33,30,321,],
  [322,33,321,],
  [35,33,322,],
  [323,35,322,],
  [37,35,323,],
  [324,37,323,],
  [28,37,324,],
  [325,28,324,],
  [27,28,325,],
  [326,27,325,],
  [25,27,326,],
  [327,25,326,],
  [22,25,327,],
  [328,22,327,],
  [20,22,328,],
  [329,20,328,],
  [18,20,329,],
  [330,18,329,],
  [16,18,330,],
  [331,16,330,],
  [14,16,331,],
  [332,14,331,],
  [13,14,332,],
  [333,13,332,],
  [51,13,333,],
  [334,51,333,],
  [50,51,334,],
  [335,50,334,],
  [4,50,335,],
  [336,4,335,],
  [3,4,336,],
  [337,3,336,],
  [1,3,337,],
  [338,1,337,],
  [49,1,338,],
  [339,49,338,],
  [48,49,339,],
  [340,48,339,],
  [8,48,340,],
  [341,8,340,],
  [7,8,341,],
  [319,7,341,],
  [5,7,319,],
  [77,342,79,],
  [343,342,77,],
  [91,343,77,],
  [344,343,91,],
  [92,344,91,],
  [345,344,92,],
  [93,345,92,],
  [346,345,93,],
  [94,346,93,],
  [347,346,94,],
  [95,347,94,],
  [348,347,95,],
  [71,348,95,],
  [349,348,71,],
  [73,349,71,],
  [350,349,73,],
  [74,350,73,],
  [351,350,74,],
  [96,351,74,],
  [352,351,96,],
  [97,352,96,],
  [353,352,97,],
  [98,353,97,],
  [354,353,98,],
  [99,354,98,],
  [355,354,99,],
  [102,355,99,],
  [356,355,102,],
  [104,356,102,],
  [357,356,104,],
  [106,357,104,],
  [358,357,106,],
  [108,358,106,],
  [359,358,108,],
  [109,359,108,],
  [360,359,109,],
  [88,360,109,],
  [361,360,88,],
  [86,361,88,],
  [362,361,86,],
  [85,362,86,],
  [363,362,85,],
  [83,363,85,],
  [364,363,83,],
  [81,364,83,],
  [365,364,81,],
  [79,365,81,],
  [342,365,79,],
  [366,31,367,],
  [29,31,366,],
  [368,29,366,],
  [47,29,368,],
  [369,47,368,],
  [46,47,369,],
  [370,46,369,],
  [45,46,370,],
  [371,45,370,],
  [12,45,371,],
  [372,12,371,],
  [11,12,372,],
  [373,11,372,],
  [9,11,373,],
  [374,9,373,],
  [44,9,374,],
  [375,44,374,],
  [43,44,375,],
  [376,43,375,],
  [42,43,376,],
  [377,42,376,],
  [41,42,377,],
  [378,41,377,],
  [40,41,378,],
  [379,40,378,],
  [15,40,379,],
  [380,15,379,],
  [17,15,380,],
  [381,17,380,],
  [19,17,381,],
  [382,19,381,],
  [21,19,382,],
  [383,21,382,],
  [23,21,383,],
  [384,23,383,],
  [24,23,384,],
  [385,24,384,],
  [26,24,385,],
  [386,26,385,],
  [39,26,386,],
  [387,39,386,],
  [38,39,387,],
  [388,38,387,],
  [36,38,388,],
  [389,36,388,],
  [34,36,389,],
  [367,34,389,],
  [31,34,367,],
  [390,174,391,],
  [173,174,390,],
  [392,173,390,],
  [172,173,392,],
  [393,172,392,],
  [171,172,393,],
  [394,171,393,],
  [170,171,394,],
  [395,170,394,],
  [168,170,395,],
  [396,168,395,],
  [167,168,396,],
  [397,167,396,],
  [166,167,397,],
  [398,166,397,],
  [165,166,398,],
  [399,165,398,],
  [164,165,399,],
  [400,164,399,],
  [163,164,400,],
  [401,163,400,],
  [162,163,401,],
  [402,162,401,],
  [161,162,402,],
  [403,161,402,],
  [160,161,403,],
  [404,160,403,],
  [159,160,404,],
  [405,159,404,],
  [158,159,405,],
  [406,158,405,],
  [156,158,406,],
  [407,156,406,],
  [155,156,407,],
  [408,155,407,],
  [154,155,408,],
  [409,154,408,],
  [153,154,409,],
  [410,153,409,],
  [152,153,410,],
  [411,152,410,],
  [151,152,411,],
  [412,151,411,],
  [150,151,412,],
  [413,150,412,],
  [149,150,413,],
  [414,149,413,],
  [148,149,414,],
  [415,148,414,],
  [133,148,415,],
  [416,133,415,],
  [132,133,416,],
  [417,132,416,],
  [130,132,417,],
  [418,130,417,],
  [147,130,418,],
  [419,147,418,],
  [146,147,419,],
  [420,146,419,],
  [144,146,420,],
  [421,144,420,],
  [145,144,421,],
  [422,145,421,],
  [128,145,422,],
  [423,424,425,],
  [426,424,423,],
  [425,427,423,],
  [428,427,425,],
  [429,428,425,],
  [425,430,429,],
  [423,431,426,],
  [427,431,423,],
  [432,427,428,],
  [431,427,432,],
  [433,428,429,],
  [432,428,433,],
  [434,432,433,],
  [435,432,434,],
  [436,435,434,],
  [434,437,436,],
  [433,438,439,],
  [429,438,433,],
  [440,426,441,],
  [424,426,440,],
  [431,441,426,],
  [442,441,431,],
  [435,441,442,],
  [440,441,435,],
  [436,440,435,],
  [443,440,436,],
  [431,435,442,],
  [432,435,431,],
  [444,445,446,],
  [447,445,444,],
  [448,446,445,],
  [449,446,448,],
  [434,449,448,],
  [433,449,434,],
  [424,444,425,],
  [447,444,424,],
  [440,447,424,],
  [443,447,440,],
  [450,447,443,],
  [444,430,425,],
  [451,430,444,],
  [452,451,444,],
  [451,64,430,],
  [136,64,451,],
  [453,136,451,],
  [430,454,429,],
  [455,454,430,],
  [64,455,430,],
  [68,455,64,],
  [456,455,68,],
  [0,429,454,],
  [438,429,0,],
  [125,438,0,],
  [457,438,125,],
  [0,57,125,],
  [58,57,0,],
  [454,10,0,],
  [458,10,454,],
  [136,116,64,],
  [114,116,136,],
  [446,452,444,],
  [439,452,446,],
  [449,439,446,],
  [433,439,449,],
  [448,437,434,],
  [450,437,448,],
  [445,450,448,],
  [447,450,445,],
  [391,392,390,],
  [393,392,391,],
  [394,393,391,],
  [391,395,394,],
  [396,395,391,],
  [397,396,391,],
  [391,398,397,],
  [399,398,391,],
  [453,399,391,],
  [400,399,453,],
  [451,400,453,],
  [401,400,451,],
  [402,401,451,],
  [451,403,402,],
  [404,403,451,],
  [405,404,451,],
  [451,406,405,],
  [438,406,451,],
  [452,438,451,],
  [439,438,452,],
  [438,407,406,],
  [408,407,438,],
  [409,408,438,],
  [438,410,409,],
  [411,410,438,],
  [412,411,438,],
  [457,412,438,],
  [413,412,457,],
  [422,413,457,],
  [414,413,422,],
  [415,414,422,],
  [422,416,415,],
  [417,416,422,],
  [418,417,422,],
  [422,419,418,],
  [420,419,422,],
  [421,420,422,],
  [457,459,422,],
  [460,459,457,],
  [461,459,460,],
  [462,461,460,],
  [453,461,462,],
  [391,461,453,],
  [443,437,450,],
  [436,437,443,],
  [124,462,460,],
  [135,462,124,],
  [135,453,462,],
  [136,453,135,],
  [125,460,457,],
  [124,460,125,],
  [157,138,169,],
  [139,138,157,],
  [463,139,157,],
  [464,139,463,],
  [169,391,174,],
  [138,391,169,],
  [461,391,138,],
  [134,461,138,],
  [131,463,157,],
  [465,463,131,],
  [466,139,464,],
  [129,139,466,],
  [465,464,463,],
  [466,464,465,],
  [465,129,466,],
  [131,129,465,],
  [467,318,319,],
  [320,318,467,],
  [367,320,467,],
  [321,320,367,],
  [389,321,367,],
  [322,321,389,],
  [388,322,389,],
  [387,322,388,],
  [323,322,387,],
  [386,323,387,],
  [324,323,386,],
  [385,324,386,],
  [325,324,385,],
  [326,325,385,],
  [384,326,385,],
  [327,326,384,],
  [383,327,384,],
  [328,327,383,],
  [382,328,383,],
  [381,328,382,],
  [329,328,381,],
  [380,329,381,],
  [330,329,380,],
  [458,330,380,],
  [331,330,458,],
  [332,331,458,],
  [454,332,458,],
  [333,332,454,],
  [334,333,454,],
  [454,335,334,],
  [336,335,454,],
  [337,336,454,],
  [468,337,454,],
  [338,337,468,],
  [339,338,468,],
  [468,340,339,],
  [341,340,468,],
  [319,341,468,],
  [467,319,468,],
  [467,366,367,],
  [368,366,467,],
  [369,368,467,],
  [467,370,369,],
  [371,370,467,],
  [372,371,467,],
  [467,373,372,],
  [458,373,467,],
  [374,373,458,],
  [375,374,458,],
  [458,376,375,],
  [377,376,458,],
  [378,377,458,],
  [458,379,378,],
  [380,379,458,],
  [6,458,467,],
  [10,458,6,],
  [203,469,201,],
  [455,469,203,],
  [205,455,203,],
  [207,455,205,],
  [209,455,207,],
  [211,455,209,],
  [213,455,211,],
  [215,455,213,],
  [454,455,215,],
  [217,454,215,],
  [219,454,217,],
  [221,454,219,],
  [223,454,221,],
  [225,454,223,],
  [227,454,225,],
  [468,454,227,],
  [229,468,227,],
  [231,468,229,],
  [233,468,231,],
  [235,468,233,],
  [237,468,235,],
  [239,468,237,],
  [469,468,239,],
  [241,469,239,],
  [243,469,241,],
  [245,469,243,],
  [247,469,245,],
  [201,469,247,],
  [470,295,296,],
  [294,295,470,],
  [469,294,470,],
  [317,294,469,],
  [316,317,469,],
  [469,315,316,],
  [314,315,469,],
  [313,314,469,],
  [455,313,469,],
  [312,313,455,],
  [311,312,455,],
  [455,310,311,],
  [309,310,455,],
  [308,309,455,],
  [456,308,455,],
  [307,308,456,],
  [306,307,456,],
  [356,306,456,],
  [305,306,356,],
  [357,305,356,],
  [304,305,357,],
  [358,304,357,],
  [359,304,358,],
  [303,304,359,],
  [360,303,359,],
  [302,303,360,],
  [361,302,360,],
  [301,302,361,],
  [300,301,361,],
  [362,300,361,],
  [299,300,362,],
  [363,299,362,],
  [298,299,363,],
  [364,298,363,],
  [365,298,364,],
  [297,298,365,],
  [342,297,365,],
  [296,297,342,],
  [470,296,342,],
  [470,343,344,],
  [342,343,470,],
  [456,355,356,],
  [354,355,456,],
  [353,354,456,],
  [456,352,353,],
  [351,352,456,],
  [350,351,456,],
  [456,349,350,],
  [470,349,456,],
  [348,349,470,],
  [347,348,470,],
  [470,346,347,],
  [345,346,470,],
  [344,345,470,],
  [470,68,72,],
  [456,68,470,],
  [2,54,53,],
  [61,54,2,],
  [62,61,2,],
  [118,61,62,],
  [62,469,72,],
  [468,469,62,],
  [2,468,62,],
  [6,468,2,],
  [467,468,6,],
  [469,470,72,],
  [248,254,250,],
  [252,254,248,],
  [471,262,261,],
  [283,262,471,],
  [472,283,471,],
  [293,283,472,],
  [473,293,472,],
  [292,293,473,],
  [474,292,473,],
  [286,292,474,],
  [475,286,474,],
  [285,286,475,],
  [476,285,475,],
  [284,285,476,],
  [477,284,476,],
  [291,284,477,],
  [478,291,477,],
  [290,291,478,],
  [479,290,478,],
  [289,290,479,],
  [480,289,479,],
  [288,289,480,],
  [481,288,480,],
  [287,288,481,],
  [268,287,481,],
  [267,287,268,],
  [189,258,190,],
  [272,258,189,],
  [187,272,189,],
  [282,272,187,],
  [186,282,187,],
  [281,282,186,],
  [185,281,186,],
  [275,281,185,],
  [184,275,185,],
  [274,275,184,],
  [183,274,184,],
  [273,274,183,],
  [192,273,183,],
  [280,273,192,],
  [193,280,192,],
  [279,280,193,],
  [194,279,193,],
  [278,279,194,],
  [195,278,194,],
  [277,278,195,],
  [197,277,195,],
  [276,277,197,],
  [198,276,197,],
  [270,276,198,],
  [253,119,177,],
  [249,119,253,],
  [476,249,253,],
  [475,249,476,],
  [474,249,475,],
  [473,249,474,],
  [472,249,473,],
  [264,249,472,],
  [471,264,472,],
  [261,264,471,],
  [263,264,261,],
  [253,477,476,],
  [478,477,253,],
  [479,478,253,],
  [253,480,479,],
  [256,480,253,],
  [481,480,256,],
  [268,481,256,],
  [256,266,268,],
  [422,126,128,],
  [459,126,422,],
  [134,459,461,],
  [126,459,134,],
];
module stlObject1() { polyhedron(points=stlObject1_points, faces=stlObject1_faces); }
stlObject1_min=[for(i=[0:2]) min([for(p=stlObject1_points) p[i]])];
stlObject1_max=[for(i=[0:2]) max([for(p=stlObject1_points) p[i]])];
stlObject1_size=[for(i=[0:2]) stlObject1_max[i]-stlObject1_min[i]];
    
difference() {
    render(convexity=3)
    rotate([90,0,0]) 
    stlObject1();
    translate([-15,-18,0]) cube([30,6,10]);
    translate([-12.5,-56,25]) cube([25,18,30]);
}
